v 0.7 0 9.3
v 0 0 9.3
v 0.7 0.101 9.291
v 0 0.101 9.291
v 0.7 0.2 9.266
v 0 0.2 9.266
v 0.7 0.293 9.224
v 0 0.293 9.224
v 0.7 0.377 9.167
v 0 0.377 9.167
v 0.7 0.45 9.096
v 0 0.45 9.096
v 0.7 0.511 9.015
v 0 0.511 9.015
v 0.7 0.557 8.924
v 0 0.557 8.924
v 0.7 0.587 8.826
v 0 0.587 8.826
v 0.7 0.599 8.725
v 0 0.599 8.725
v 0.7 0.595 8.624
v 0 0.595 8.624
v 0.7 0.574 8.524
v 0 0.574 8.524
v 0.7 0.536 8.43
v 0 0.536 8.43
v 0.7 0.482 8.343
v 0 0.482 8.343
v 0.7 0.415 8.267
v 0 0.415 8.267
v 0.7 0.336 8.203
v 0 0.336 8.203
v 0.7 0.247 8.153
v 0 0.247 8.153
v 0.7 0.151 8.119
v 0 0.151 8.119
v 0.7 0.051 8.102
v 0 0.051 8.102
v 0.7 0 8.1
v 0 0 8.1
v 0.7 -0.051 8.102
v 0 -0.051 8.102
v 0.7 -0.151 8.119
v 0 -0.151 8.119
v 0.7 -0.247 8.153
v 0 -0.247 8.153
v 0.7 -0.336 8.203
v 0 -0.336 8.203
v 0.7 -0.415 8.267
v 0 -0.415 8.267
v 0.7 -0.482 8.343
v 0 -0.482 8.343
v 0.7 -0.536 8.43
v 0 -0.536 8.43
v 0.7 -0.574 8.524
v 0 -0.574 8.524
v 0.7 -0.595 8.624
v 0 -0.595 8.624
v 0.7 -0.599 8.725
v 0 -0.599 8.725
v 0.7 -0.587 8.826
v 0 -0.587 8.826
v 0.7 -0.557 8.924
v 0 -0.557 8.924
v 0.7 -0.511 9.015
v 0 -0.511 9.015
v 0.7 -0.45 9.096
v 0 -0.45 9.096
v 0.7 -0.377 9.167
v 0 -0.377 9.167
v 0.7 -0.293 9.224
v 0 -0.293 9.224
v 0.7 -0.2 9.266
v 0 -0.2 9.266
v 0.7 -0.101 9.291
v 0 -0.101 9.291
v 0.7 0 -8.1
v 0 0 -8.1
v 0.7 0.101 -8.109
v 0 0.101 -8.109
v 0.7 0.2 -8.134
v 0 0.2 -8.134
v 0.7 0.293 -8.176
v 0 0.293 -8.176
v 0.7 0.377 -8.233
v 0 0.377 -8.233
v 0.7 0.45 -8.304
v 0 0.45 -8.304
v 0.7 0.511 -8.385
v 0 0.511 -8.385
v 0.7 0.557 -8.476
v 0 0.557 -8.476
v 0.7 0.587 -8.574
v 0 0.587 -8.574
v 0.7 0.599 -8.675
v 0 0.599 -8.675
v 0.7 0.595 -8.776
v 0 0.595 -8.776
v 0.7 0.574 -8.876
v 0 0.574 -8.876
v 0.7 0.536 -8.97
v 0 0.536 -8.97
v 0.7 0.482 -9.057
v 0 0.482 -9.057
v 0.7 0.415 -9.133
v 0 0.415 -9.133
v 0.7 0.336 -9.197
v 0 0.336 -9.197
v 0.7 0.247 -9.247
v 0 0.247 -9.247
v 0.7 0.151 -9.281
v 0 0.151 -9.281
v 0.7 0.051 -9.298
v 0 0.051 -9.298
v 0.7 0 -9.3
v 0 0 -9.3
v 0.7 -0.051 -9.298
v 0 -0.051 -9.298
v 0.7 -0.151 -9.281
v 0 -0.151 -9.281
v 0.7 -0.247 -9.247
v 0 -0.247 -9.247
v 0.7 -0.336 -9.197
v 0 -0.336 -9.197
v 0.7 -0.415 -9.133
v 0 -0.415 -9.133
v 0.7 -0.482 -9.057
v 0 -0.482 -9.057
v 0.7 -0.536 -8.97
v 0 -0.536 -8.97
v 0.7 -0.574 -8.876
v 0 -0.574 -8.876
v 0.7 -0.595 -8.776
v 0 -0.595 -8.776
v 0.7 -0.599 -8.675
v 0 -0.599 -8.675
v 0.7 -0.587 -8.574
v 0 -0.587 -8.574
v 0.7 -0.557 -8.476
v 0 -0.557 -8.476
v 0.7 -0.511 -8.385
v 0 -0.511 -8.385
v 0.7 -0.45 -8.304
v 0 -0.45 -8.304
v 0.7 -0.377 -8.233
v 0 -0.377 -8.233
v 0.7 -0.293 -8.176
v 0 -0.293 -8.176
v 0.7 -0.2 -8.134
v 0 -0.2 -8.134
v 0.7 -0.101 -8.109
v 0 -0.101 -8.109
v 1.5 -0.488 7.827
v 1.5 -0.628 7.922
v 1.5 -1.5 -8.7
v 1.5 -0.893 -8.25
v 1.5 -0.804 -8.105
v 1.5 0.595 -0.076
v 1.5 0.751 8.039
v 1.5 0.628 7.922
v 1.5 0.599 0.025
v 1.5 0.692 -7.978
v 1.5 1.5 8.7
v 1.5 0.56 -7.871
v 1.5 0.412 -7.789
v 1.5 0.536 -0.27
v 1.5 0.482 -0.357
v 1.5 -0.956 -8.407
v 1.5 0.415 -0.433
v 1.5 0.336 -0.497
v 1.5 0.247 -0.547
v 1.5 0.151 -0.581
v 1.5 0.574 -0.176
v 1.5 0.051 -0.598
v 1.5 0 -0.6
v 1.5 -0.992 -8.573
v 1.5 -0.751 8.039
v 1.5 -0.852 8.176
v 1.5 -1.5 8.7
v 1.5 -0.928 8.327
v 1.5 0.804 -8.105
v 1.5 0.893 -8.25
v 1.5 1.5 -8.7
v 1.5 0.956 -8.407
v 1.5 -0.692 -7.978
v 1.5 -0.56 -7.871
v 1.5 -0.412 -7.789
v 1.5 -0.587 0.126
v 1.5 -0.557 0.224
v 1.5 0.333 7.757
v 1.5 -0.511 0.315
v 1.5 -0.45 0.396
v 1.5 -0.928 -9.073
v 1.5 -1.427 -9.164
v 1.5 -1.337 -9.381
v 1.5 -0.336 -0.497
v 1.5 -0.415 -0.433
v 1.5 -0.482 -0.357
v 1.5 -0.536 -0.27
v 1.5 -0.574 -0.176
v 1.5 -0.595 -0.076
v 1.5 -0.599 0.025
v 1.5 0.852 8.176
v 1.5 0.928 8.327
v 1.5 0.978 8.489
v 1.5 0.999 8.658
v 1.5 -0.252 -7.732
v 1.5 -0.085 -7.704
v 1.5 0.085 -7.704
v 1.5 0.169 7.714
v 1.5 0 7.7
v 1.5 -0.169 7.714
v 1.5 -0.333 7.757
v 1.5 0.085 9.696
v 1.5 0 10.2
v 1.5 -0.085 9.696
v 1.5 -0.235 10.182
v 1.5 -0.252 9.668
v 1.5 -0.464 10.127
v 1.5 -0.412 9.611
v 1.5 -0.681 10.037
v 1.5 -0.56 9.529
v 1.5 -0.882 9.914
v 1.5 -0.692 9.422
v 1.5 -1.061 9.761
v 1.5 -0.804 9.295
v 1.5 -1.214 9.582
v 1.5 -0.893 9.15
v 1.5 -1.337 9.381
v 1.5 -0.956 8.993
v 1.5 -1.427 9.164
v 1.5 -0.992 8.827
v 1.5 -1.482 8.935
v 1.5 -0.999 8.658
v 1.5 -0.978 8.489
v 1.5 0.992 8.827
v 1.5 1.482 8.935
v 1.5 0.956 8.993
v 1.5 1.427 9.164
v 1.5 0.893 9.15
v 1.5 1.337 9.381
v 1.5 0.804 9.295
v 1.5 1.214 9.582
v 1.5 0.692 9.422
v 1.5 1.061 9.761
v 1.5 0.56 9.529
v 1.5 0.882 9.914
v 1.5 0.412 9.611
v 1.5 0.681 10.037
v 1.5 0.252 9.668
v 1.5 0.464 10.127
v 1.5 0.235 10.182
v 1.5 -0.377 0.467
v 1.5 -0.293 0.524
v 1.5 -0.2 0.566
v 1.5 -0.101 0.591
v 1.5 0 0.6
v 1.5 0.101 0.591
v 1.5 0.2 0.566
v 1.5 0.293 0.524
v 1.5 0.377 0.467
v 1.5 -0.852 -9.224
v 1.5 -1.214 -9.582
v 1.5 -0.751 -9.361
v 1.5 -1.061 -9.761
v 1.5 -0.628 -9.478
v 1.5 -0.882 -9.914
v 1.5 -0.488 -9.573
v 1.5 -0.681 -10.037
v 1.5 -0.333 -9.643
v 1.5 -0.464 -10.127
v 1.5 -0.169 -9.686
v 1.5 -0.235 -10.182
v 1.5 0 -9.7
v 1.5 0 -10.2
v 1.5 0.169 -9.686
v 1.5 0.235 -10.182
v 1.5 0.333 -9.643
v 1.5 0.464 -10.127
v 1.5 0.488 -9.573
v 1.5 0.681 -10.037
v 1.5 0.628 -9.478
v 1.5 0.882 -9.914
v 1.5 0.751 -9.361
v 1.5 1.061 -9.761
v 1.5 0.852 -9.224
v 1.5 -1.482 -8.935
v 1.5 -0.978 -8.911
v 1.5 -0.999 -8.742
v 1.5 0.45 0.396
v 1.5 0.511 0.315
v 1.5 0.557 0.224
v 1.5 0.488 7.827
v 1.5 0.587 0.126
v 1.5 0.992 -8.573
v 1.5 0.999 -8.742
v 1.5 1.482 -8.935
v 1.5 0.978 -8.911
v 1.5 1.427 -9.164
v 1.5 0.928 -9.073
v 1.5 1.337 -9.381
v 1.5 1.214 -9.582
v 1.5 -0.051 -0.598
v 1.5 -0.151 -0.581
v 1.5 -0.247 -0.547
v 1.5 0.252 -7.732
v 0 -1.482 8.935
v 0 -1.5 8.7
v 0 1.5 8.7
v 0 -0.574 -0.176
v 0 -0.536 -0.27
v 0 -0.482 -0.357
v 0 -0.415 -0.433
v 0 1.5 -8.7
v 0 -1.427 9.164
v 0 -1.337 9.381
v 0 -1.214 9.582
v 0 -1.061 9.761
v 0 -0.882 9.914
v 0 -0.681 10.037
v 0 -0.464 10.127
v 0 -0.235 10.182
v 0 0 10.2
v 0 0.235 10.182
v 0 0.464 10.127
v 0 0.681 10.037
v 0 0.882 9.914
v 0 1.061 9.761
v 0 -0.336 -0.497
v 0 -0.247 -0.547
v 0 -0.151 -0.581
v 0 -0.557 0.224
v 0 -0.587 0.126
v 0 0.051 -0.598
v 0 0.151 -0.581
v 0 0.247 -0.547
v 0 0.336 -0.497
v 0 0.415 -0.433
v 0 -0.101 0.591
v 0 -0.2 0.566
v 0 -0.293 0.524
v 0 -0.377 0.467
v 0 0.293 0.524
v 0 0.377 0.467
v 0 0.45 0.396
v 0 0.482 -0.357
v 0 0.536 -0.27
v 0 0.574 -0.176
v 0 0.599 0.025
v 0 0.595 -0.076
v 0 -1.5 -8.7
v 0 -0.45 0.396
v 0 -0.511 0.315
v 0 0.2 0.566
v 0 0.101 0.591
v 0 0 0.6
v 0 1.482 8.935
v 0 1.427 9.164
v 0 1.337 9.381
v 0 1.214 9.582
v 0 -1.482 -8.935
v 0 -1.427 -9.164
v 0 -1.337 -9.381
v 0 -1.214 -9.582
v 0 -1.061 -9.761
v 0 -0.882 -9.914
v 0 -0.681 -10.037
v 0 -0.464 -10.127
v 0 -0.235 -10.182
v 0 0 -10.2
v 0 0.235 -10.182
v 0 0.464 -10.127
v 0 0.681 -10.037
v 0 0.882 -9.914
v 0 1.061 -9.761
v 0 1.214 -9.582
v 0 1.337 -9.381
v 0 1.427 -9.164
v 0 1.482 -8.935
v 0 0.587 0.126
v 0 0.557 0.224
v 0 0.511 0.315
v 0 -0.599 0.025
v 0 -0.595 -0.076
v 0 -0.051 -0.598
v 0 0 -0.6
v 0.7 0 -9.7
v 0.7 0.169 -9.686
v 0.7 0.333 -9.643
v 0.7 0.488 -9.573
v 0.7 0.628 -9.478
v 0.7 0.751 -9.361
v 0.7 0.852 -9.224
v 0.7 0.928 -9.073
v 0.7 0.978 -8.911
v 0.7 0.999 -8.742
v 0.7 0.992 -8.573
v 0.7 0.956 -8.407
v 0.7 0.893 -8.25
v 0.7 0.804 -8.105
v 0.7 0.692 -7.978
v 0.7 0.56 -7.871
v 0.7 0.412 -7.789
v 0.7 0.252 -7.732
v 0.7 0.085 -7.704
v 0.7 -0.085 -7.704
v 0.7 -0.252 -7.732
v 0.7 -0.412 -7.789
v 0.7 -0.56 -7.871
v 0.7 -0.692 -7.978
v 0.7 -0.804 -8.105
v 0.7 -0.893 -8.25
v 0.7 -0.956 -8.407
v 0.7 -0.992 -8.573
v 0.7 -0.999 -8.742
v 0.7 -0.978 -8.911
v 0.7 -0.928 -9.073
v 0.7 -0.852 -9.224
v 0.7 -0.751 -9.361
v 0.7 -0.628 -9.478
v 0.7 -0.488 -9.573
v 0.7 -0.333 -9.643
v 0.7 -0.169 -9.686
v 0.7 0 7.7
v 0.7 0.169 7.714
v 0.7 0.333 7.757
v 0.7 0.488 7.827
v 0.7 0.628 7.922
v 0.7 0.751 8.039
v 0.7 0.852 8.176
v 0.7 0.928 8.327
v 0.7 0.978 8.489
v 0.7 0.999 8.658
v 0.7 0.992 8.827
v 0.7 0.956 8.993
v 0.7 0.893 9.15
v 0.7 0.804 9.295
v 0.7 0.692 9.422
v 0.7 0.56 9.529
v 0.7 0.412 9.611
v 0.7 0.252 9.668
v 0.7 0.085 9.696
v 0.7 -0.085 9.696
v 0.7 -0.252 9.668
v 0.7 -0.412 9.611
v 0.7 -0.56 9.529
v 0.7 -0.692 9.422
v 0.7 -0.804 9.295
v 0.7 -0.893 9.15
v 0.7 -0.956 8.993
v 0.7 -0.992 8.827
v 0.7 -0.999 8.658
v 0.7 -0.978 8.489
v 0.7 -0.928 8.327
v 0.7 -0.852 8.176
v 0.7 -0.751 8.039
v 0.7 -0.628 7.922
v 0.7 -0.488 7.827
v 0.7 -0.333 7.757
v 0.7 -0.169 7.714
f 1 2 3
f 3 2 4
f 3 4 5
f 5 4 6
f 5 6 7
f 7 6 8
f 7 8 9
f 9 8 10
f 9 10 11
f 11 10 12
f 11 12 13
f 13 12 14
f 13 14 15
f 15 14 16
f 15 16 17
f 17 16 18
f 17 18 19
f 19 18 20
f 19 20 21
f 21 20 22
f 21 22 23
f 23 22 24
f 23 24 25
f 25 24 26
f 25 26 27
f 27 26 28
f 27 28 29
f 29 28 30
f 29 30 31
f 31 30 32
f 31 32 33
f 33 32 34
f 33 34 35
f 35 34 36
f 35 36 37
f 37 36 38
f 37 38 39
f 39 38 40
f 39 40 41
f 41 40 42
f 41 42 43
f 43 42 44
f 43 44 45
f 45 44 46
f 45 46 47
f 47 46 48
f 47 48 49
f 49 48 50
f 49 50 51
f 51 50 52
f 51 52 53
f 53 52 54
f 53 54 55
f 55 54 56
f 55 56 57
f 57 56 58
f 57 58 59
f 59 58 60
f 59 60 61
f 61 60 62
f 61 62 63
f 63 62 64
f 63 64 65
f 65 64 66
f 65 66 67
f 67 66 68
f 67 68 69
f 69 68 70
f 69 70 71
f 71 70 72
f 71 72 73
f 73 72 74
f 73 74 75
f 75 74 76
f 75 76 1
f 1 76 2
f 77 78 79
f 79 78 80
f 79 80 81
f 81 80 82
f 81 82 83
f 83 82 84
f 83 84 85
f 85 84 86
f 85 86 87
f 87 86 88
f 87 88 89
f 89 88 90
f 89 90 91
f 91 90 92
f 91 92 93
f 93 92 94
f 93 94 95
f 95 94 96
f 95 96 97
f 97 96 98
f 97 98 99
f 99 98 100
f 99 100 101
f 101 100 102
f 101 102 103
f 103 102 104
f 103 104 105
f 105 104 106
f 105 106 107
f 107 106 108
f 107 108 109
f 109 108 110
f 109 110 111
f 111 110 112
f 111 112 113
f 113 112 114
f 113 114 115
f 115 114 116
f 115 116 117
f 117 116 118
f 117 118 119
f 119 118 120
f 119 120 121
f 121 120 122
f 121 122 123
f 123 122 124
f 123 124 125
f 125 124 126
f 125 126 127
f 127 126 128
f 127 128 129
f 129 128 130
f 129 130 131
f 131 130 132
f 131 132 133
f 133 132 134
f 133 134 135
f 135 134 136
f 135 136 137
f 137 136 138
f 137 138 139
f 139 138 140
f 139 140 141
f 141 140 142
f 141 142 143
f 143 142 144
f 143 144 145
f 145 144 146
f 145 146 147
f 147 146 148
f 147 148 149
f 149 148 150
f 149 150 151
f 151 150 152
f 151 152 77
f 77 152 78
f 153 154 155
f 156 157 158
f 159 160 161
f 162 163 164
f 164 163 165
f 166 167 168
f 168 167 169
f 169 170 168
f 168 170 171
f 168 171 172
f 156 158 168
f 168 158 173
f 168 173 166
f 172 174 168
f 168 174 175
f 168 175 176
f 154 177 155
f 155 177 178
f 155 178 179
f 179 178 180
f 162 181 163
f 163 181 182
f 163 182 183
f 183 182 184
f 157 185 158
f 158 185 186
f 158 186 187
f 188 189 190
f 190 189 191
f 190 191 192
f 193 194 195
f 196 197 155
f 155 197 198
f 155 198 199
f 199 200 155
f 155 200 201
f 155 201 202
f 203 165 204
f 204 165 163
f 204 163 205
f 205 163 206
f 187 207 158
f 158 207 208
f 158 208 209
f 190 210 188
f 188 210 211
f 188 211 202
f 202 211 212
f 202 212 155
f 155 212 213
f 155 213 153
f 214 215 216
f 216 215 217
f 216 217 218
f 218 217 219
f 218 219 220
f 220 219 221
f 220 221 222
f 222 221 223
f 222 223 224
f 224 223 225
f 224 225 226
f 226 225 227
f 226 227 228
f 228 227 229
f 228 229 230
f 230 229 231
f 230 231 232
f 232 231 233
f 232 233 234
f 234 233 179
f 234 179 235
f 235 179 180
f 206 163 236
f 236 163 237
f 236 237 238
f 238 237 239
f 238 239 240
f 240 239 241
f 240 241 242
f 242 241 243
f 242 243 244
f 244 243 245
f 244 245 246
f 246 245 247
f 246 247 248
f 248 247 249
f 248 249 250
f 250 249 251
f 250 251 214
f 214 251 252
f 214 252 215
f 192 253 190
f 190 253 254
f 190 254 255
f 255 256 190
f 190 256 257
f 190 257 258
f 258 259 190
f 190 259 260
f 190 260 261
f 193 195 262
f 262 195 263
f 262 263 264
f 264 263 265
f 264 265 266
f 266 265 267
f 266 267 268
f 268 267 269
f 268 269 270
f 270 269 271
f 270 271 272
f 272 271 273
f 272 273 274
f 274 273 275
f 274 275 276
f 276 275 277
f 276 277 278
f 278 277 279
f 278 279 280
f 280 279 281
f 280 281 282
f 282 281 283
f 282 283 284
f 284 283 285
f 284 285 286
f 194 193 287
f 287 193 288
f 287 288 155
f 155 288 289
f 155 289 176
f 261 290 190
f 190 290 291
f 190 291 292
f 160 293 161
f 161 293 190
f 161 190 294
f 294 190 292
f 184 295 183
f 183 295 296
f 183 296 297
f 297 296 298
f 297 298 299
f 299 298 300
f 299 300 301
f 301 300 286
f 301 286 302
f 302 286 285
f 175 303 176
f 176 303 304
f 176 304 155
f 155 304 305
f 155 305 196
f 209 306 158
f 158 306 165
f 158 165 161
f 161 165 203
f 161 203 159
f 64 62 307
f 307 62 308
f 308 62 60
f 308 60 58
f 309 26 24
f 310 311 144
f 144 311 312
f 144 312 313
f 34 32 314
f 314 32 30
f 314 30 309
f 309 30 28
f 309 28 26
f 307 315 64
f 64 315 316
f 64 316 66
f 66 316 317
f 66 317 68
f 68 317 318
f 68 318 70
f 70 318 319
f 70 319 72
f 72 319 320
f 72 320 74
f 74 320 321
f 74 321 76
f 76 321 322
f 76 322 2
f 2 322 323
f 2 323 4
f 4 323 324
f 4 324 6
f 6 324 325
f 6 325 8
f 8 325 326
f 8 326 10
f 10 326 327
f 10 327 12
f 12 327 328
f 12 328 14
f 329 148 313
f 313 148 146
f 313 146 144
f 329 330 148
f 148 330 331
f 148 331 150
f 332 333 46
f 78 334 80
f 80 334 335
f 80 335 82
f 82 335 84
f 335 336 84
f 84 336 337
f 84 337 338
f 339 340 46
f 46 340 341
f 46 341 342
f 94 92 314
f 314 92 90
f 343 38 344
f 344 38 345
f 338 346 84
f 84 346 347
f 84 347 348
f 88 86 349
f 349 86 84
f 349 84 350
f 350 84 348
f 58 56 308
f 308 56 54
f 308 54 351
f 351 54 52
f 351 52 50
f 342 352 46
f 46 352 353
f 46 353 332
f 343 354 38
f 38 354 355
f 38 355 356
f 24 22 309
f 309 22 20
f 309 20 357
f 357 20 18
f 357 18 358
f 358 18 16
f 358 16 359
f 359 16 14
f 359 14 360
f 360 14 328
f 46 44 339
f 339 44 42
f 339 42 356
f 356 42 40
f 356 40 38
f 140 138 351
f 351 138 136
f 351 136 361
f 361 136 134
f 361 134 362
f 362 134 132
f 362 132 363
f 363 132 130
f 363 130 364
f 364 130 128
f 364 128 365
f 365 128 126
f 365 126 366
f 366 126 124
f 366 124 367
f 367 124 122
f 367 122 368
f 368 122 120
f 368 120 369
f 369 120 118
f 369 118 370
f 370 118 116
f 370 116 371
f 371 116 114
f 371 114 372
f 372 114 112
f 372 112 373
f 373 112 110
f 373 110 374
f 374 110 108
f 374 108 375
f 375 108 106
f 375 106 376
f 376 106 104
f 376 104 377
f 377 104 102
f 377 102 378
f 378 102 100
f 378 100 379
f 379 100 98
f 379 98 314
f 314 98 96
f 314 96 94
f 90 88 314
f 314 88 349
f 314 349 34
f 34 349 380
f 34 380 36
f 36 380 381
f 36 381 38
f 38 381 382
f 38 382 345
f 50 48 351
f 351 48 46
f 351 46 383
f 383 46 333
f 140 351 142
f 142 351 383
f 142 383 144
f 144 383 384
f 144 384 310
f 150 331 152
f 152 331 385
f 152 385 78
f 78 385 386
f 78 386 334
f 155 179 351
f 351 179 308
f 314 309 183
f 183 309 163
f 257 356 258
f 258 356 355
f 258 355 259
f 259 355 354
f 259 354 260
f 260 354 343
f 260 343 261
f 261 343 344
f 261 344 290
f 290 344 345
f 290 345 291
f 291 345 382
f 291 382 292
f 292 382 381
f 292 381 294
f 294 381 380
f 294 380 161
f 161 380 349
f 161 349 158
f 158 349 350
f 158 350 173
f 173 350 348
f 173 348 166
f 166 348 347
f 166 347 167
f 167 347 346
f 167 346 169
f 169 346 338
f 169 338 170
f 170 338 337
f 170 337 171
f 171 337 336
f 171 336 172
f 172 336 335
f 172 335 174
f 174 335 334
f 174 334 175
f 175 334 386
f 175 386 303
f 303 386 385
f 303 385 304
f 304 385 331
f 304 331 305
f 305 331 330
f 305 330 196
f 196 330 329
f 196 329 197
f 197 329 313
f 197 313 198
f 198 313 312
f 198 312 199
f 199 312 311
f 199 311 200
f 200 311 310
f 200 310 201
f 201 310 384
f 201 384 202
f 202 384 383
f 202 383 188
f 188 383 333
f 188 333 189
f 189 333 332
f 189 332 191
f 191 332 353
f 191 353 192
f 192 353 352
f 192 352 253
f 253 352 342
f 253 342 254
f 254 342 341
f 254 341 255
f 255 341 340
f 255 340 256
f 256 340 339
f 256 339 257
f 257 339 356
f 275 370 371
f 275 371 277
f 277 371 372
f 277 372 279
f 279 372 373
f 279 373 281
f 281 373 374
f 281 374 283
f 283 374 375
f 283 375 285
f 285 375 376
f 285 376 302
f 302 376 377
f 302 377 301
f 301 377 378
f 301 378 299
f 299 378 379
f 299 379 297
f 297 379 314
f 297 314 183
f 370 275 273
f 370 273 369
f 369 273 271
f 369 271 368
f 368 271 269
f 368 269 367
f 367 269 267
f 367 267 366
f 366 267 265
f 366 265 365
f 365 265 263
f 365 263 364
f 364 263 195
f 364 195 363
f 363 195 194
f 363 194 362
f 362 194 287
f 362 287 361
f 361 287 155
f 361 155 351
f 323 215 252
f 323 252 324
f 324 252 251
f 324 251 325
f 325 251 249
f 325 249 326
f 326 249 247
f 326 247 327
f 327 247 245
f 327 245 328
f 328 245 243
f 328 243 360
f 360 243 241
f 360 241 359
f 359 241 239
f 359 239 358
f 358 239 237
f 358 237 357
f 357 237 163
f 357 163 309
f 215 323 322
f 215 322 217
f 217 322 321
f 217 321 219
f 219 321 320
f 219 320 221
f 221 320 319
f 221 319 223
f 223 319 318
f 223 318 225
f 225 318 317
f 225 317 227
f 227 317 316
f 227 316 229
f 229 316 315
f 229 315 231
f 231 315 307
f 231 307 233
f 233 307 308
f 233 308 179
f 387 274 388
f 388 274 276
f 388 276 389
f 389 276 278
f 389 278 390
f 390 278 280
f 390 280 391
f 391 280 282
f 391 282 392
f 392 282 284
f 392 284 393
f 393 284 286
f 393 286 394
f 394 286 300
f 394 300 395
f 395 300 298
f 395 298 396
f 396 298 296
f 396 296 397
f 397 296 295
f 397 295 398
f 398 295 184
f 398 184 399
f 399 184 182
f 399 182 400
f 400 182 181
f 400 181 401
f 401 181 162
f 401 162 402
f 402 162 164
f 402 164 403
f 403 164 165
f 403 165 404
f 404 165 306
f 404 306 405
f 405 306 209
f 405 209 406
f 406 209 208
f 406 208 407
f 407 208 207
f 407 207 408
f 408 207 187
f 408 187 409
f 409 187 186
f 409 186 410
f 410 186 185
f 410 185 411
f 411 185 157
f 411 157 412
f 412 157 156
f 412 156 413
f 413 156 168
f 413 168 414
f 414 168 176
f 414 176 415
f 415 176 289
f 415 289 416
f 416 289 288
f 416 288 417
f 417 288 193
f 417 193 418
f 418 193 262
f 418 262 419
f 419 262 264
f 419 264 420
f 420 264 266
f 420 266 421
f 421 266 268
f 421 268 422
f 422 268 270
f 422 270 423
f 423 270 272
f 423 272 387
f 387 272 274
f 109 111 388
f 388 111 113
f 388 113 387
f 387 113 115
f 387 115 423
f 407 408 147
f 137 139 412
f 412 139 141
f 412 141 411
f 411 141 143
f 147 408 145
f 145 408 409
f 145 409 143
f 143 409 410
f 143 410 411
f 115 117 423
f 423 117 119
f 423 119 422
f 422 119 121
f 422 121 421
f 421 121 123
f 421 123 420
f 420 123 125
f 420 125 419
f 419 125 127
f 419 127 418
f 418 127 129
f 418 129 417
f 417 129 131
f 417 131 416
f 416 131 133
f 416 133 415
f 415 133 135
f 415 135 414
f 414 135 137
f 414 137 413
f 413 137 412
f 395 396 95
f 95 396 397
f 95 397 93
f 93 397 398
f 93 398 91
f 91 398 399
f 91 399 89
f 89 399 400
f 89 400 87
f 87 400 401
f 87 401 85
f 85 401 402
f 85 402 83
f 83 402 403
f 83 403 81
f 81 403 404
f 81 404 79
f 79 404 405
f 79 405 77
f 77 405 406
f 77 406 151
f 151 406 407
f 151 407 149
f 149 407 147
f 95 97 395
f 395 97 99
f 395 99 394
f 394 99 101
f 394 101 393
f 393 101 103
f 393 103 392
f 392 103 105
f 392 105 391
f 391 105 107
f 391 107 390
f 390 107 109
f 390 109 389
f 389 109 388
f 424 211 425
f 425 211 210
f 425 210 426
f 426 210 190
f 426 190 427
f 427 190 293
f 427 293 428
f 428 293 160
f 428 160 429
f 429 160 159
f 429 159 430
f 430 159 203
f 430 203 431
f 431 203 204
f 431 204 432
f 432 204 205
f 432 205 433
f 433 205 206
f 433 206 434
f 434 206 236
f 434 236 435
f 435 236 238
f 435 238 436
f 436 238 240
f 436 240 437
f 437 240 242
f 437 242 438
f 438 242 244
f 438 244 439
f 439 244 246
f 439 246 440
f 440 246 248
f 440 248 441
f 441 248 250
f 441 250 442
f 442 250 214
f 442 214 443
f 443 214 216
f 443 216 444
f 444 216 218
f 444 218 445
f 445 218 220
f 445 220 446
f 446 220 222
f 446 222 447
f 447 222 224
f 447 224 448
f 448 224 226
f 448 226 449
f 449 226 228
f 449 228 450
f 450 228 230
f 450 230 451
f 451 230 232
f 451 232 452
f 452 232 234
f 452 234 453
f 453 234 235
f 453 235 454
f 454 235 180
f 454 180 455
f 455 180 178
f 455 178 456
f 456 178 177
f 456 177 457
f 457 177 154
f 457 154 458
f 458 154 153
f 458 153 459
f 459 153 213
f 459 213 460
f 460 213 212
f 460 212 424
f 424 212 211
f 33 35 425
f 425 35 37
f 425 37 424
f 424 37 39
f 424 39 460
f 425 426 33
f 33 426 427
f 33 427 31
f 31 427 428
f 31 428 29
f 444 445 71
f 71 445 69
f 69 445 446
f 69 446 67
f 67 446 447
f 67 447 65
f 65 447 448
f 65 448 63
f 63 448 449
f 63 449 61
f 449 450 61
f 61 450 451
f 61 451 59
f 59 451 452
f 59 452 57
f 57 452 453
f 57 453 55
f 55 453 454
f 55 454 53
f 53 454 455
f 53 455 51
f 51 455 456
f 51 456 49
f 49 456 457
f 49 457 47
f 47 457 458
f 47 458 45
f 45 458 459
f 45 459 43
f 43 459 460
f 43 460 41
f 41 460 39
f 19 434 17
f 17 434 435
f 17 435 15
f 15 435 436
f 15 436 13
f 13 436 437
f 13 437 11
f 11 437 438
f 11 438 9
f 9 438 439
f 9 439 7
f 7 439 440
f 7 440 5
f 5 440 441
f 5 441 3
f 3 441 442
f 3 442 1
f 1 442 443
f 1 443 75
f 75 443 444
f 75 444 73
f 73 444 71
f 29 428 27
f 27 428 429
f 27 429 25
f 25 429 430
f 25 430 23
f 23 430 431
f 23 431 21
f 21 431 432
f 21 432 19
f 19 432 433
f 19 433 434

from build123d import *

# Parameters (mm, degrees)
SKETCH_1_W          = 20.4
SKETCH_1_H          = 3
SKETCH_1_R          = 0.6
EXTRUDE_1_DEPTH     = 1.5
FILLET_1_R          = 1.5
CUT_EXTRUDE_START   = 1.5
SKETCH_1_3_R        = 1
CUT_EXTRUDE_1_DEPTH = 0.8


with BuildPart() as part:
    # 草图1 → 凸台-拉伸1 (new body)
    with BuildSketch(Plane(origin=(0, 0, 0), x_dir=(0, 0, -1), z_dir=(1, 0, 0))):
        Rectangle(SKETCH_1_W, SKETCH_1_H)
        Circle(SKETCH_1_R, mode=Mode.SUBTRACT)
        with Locations((-8.7, 0)):
            Circle(SKETCH_1_R, mode=Mode.SUBTRACT)
        with Locations((8.7, 0)):
            Circle(SKETCH_1_R, mode=Mode.SUBTRACT)
    extrude(amount=EXTRUDE_1_DEPTH)

    # 圆角1
    fillet_1_edges = [part.edges().sort_by_distance(p)[0] for p in [
        (0.75, -1.5, -10.2),
        (0.75, 1.5, -10.2),
        (0.75, -1.5, 10.2),
        (0.75, 1.5, 10.2),
    ]]
    fillet(fillet_1_edges, radius=FILLET_1_R - 0.0001)  # a hair under: the kernel refuses the full size

    # 草图1<3> → 切除-拉伸1 (cut)
    with BuildSketch(Plane(origin=(0, 0, 0), x_dir=(0, 0, -1), z_dir=(1, 0, 0)).offset(CUT_EXTRUDE_START)):
        with Locations((-8.7, 0)):
            Circle(SKETCH_1_3_R)
        with Locations((8.7, 0)):
            Circle(SKETCH_1_3_R)
    extrude(amount=-CUT_EXTRUDE_1_DEPTH, mode=Mode.SUBTRACT)


solid = part.part
